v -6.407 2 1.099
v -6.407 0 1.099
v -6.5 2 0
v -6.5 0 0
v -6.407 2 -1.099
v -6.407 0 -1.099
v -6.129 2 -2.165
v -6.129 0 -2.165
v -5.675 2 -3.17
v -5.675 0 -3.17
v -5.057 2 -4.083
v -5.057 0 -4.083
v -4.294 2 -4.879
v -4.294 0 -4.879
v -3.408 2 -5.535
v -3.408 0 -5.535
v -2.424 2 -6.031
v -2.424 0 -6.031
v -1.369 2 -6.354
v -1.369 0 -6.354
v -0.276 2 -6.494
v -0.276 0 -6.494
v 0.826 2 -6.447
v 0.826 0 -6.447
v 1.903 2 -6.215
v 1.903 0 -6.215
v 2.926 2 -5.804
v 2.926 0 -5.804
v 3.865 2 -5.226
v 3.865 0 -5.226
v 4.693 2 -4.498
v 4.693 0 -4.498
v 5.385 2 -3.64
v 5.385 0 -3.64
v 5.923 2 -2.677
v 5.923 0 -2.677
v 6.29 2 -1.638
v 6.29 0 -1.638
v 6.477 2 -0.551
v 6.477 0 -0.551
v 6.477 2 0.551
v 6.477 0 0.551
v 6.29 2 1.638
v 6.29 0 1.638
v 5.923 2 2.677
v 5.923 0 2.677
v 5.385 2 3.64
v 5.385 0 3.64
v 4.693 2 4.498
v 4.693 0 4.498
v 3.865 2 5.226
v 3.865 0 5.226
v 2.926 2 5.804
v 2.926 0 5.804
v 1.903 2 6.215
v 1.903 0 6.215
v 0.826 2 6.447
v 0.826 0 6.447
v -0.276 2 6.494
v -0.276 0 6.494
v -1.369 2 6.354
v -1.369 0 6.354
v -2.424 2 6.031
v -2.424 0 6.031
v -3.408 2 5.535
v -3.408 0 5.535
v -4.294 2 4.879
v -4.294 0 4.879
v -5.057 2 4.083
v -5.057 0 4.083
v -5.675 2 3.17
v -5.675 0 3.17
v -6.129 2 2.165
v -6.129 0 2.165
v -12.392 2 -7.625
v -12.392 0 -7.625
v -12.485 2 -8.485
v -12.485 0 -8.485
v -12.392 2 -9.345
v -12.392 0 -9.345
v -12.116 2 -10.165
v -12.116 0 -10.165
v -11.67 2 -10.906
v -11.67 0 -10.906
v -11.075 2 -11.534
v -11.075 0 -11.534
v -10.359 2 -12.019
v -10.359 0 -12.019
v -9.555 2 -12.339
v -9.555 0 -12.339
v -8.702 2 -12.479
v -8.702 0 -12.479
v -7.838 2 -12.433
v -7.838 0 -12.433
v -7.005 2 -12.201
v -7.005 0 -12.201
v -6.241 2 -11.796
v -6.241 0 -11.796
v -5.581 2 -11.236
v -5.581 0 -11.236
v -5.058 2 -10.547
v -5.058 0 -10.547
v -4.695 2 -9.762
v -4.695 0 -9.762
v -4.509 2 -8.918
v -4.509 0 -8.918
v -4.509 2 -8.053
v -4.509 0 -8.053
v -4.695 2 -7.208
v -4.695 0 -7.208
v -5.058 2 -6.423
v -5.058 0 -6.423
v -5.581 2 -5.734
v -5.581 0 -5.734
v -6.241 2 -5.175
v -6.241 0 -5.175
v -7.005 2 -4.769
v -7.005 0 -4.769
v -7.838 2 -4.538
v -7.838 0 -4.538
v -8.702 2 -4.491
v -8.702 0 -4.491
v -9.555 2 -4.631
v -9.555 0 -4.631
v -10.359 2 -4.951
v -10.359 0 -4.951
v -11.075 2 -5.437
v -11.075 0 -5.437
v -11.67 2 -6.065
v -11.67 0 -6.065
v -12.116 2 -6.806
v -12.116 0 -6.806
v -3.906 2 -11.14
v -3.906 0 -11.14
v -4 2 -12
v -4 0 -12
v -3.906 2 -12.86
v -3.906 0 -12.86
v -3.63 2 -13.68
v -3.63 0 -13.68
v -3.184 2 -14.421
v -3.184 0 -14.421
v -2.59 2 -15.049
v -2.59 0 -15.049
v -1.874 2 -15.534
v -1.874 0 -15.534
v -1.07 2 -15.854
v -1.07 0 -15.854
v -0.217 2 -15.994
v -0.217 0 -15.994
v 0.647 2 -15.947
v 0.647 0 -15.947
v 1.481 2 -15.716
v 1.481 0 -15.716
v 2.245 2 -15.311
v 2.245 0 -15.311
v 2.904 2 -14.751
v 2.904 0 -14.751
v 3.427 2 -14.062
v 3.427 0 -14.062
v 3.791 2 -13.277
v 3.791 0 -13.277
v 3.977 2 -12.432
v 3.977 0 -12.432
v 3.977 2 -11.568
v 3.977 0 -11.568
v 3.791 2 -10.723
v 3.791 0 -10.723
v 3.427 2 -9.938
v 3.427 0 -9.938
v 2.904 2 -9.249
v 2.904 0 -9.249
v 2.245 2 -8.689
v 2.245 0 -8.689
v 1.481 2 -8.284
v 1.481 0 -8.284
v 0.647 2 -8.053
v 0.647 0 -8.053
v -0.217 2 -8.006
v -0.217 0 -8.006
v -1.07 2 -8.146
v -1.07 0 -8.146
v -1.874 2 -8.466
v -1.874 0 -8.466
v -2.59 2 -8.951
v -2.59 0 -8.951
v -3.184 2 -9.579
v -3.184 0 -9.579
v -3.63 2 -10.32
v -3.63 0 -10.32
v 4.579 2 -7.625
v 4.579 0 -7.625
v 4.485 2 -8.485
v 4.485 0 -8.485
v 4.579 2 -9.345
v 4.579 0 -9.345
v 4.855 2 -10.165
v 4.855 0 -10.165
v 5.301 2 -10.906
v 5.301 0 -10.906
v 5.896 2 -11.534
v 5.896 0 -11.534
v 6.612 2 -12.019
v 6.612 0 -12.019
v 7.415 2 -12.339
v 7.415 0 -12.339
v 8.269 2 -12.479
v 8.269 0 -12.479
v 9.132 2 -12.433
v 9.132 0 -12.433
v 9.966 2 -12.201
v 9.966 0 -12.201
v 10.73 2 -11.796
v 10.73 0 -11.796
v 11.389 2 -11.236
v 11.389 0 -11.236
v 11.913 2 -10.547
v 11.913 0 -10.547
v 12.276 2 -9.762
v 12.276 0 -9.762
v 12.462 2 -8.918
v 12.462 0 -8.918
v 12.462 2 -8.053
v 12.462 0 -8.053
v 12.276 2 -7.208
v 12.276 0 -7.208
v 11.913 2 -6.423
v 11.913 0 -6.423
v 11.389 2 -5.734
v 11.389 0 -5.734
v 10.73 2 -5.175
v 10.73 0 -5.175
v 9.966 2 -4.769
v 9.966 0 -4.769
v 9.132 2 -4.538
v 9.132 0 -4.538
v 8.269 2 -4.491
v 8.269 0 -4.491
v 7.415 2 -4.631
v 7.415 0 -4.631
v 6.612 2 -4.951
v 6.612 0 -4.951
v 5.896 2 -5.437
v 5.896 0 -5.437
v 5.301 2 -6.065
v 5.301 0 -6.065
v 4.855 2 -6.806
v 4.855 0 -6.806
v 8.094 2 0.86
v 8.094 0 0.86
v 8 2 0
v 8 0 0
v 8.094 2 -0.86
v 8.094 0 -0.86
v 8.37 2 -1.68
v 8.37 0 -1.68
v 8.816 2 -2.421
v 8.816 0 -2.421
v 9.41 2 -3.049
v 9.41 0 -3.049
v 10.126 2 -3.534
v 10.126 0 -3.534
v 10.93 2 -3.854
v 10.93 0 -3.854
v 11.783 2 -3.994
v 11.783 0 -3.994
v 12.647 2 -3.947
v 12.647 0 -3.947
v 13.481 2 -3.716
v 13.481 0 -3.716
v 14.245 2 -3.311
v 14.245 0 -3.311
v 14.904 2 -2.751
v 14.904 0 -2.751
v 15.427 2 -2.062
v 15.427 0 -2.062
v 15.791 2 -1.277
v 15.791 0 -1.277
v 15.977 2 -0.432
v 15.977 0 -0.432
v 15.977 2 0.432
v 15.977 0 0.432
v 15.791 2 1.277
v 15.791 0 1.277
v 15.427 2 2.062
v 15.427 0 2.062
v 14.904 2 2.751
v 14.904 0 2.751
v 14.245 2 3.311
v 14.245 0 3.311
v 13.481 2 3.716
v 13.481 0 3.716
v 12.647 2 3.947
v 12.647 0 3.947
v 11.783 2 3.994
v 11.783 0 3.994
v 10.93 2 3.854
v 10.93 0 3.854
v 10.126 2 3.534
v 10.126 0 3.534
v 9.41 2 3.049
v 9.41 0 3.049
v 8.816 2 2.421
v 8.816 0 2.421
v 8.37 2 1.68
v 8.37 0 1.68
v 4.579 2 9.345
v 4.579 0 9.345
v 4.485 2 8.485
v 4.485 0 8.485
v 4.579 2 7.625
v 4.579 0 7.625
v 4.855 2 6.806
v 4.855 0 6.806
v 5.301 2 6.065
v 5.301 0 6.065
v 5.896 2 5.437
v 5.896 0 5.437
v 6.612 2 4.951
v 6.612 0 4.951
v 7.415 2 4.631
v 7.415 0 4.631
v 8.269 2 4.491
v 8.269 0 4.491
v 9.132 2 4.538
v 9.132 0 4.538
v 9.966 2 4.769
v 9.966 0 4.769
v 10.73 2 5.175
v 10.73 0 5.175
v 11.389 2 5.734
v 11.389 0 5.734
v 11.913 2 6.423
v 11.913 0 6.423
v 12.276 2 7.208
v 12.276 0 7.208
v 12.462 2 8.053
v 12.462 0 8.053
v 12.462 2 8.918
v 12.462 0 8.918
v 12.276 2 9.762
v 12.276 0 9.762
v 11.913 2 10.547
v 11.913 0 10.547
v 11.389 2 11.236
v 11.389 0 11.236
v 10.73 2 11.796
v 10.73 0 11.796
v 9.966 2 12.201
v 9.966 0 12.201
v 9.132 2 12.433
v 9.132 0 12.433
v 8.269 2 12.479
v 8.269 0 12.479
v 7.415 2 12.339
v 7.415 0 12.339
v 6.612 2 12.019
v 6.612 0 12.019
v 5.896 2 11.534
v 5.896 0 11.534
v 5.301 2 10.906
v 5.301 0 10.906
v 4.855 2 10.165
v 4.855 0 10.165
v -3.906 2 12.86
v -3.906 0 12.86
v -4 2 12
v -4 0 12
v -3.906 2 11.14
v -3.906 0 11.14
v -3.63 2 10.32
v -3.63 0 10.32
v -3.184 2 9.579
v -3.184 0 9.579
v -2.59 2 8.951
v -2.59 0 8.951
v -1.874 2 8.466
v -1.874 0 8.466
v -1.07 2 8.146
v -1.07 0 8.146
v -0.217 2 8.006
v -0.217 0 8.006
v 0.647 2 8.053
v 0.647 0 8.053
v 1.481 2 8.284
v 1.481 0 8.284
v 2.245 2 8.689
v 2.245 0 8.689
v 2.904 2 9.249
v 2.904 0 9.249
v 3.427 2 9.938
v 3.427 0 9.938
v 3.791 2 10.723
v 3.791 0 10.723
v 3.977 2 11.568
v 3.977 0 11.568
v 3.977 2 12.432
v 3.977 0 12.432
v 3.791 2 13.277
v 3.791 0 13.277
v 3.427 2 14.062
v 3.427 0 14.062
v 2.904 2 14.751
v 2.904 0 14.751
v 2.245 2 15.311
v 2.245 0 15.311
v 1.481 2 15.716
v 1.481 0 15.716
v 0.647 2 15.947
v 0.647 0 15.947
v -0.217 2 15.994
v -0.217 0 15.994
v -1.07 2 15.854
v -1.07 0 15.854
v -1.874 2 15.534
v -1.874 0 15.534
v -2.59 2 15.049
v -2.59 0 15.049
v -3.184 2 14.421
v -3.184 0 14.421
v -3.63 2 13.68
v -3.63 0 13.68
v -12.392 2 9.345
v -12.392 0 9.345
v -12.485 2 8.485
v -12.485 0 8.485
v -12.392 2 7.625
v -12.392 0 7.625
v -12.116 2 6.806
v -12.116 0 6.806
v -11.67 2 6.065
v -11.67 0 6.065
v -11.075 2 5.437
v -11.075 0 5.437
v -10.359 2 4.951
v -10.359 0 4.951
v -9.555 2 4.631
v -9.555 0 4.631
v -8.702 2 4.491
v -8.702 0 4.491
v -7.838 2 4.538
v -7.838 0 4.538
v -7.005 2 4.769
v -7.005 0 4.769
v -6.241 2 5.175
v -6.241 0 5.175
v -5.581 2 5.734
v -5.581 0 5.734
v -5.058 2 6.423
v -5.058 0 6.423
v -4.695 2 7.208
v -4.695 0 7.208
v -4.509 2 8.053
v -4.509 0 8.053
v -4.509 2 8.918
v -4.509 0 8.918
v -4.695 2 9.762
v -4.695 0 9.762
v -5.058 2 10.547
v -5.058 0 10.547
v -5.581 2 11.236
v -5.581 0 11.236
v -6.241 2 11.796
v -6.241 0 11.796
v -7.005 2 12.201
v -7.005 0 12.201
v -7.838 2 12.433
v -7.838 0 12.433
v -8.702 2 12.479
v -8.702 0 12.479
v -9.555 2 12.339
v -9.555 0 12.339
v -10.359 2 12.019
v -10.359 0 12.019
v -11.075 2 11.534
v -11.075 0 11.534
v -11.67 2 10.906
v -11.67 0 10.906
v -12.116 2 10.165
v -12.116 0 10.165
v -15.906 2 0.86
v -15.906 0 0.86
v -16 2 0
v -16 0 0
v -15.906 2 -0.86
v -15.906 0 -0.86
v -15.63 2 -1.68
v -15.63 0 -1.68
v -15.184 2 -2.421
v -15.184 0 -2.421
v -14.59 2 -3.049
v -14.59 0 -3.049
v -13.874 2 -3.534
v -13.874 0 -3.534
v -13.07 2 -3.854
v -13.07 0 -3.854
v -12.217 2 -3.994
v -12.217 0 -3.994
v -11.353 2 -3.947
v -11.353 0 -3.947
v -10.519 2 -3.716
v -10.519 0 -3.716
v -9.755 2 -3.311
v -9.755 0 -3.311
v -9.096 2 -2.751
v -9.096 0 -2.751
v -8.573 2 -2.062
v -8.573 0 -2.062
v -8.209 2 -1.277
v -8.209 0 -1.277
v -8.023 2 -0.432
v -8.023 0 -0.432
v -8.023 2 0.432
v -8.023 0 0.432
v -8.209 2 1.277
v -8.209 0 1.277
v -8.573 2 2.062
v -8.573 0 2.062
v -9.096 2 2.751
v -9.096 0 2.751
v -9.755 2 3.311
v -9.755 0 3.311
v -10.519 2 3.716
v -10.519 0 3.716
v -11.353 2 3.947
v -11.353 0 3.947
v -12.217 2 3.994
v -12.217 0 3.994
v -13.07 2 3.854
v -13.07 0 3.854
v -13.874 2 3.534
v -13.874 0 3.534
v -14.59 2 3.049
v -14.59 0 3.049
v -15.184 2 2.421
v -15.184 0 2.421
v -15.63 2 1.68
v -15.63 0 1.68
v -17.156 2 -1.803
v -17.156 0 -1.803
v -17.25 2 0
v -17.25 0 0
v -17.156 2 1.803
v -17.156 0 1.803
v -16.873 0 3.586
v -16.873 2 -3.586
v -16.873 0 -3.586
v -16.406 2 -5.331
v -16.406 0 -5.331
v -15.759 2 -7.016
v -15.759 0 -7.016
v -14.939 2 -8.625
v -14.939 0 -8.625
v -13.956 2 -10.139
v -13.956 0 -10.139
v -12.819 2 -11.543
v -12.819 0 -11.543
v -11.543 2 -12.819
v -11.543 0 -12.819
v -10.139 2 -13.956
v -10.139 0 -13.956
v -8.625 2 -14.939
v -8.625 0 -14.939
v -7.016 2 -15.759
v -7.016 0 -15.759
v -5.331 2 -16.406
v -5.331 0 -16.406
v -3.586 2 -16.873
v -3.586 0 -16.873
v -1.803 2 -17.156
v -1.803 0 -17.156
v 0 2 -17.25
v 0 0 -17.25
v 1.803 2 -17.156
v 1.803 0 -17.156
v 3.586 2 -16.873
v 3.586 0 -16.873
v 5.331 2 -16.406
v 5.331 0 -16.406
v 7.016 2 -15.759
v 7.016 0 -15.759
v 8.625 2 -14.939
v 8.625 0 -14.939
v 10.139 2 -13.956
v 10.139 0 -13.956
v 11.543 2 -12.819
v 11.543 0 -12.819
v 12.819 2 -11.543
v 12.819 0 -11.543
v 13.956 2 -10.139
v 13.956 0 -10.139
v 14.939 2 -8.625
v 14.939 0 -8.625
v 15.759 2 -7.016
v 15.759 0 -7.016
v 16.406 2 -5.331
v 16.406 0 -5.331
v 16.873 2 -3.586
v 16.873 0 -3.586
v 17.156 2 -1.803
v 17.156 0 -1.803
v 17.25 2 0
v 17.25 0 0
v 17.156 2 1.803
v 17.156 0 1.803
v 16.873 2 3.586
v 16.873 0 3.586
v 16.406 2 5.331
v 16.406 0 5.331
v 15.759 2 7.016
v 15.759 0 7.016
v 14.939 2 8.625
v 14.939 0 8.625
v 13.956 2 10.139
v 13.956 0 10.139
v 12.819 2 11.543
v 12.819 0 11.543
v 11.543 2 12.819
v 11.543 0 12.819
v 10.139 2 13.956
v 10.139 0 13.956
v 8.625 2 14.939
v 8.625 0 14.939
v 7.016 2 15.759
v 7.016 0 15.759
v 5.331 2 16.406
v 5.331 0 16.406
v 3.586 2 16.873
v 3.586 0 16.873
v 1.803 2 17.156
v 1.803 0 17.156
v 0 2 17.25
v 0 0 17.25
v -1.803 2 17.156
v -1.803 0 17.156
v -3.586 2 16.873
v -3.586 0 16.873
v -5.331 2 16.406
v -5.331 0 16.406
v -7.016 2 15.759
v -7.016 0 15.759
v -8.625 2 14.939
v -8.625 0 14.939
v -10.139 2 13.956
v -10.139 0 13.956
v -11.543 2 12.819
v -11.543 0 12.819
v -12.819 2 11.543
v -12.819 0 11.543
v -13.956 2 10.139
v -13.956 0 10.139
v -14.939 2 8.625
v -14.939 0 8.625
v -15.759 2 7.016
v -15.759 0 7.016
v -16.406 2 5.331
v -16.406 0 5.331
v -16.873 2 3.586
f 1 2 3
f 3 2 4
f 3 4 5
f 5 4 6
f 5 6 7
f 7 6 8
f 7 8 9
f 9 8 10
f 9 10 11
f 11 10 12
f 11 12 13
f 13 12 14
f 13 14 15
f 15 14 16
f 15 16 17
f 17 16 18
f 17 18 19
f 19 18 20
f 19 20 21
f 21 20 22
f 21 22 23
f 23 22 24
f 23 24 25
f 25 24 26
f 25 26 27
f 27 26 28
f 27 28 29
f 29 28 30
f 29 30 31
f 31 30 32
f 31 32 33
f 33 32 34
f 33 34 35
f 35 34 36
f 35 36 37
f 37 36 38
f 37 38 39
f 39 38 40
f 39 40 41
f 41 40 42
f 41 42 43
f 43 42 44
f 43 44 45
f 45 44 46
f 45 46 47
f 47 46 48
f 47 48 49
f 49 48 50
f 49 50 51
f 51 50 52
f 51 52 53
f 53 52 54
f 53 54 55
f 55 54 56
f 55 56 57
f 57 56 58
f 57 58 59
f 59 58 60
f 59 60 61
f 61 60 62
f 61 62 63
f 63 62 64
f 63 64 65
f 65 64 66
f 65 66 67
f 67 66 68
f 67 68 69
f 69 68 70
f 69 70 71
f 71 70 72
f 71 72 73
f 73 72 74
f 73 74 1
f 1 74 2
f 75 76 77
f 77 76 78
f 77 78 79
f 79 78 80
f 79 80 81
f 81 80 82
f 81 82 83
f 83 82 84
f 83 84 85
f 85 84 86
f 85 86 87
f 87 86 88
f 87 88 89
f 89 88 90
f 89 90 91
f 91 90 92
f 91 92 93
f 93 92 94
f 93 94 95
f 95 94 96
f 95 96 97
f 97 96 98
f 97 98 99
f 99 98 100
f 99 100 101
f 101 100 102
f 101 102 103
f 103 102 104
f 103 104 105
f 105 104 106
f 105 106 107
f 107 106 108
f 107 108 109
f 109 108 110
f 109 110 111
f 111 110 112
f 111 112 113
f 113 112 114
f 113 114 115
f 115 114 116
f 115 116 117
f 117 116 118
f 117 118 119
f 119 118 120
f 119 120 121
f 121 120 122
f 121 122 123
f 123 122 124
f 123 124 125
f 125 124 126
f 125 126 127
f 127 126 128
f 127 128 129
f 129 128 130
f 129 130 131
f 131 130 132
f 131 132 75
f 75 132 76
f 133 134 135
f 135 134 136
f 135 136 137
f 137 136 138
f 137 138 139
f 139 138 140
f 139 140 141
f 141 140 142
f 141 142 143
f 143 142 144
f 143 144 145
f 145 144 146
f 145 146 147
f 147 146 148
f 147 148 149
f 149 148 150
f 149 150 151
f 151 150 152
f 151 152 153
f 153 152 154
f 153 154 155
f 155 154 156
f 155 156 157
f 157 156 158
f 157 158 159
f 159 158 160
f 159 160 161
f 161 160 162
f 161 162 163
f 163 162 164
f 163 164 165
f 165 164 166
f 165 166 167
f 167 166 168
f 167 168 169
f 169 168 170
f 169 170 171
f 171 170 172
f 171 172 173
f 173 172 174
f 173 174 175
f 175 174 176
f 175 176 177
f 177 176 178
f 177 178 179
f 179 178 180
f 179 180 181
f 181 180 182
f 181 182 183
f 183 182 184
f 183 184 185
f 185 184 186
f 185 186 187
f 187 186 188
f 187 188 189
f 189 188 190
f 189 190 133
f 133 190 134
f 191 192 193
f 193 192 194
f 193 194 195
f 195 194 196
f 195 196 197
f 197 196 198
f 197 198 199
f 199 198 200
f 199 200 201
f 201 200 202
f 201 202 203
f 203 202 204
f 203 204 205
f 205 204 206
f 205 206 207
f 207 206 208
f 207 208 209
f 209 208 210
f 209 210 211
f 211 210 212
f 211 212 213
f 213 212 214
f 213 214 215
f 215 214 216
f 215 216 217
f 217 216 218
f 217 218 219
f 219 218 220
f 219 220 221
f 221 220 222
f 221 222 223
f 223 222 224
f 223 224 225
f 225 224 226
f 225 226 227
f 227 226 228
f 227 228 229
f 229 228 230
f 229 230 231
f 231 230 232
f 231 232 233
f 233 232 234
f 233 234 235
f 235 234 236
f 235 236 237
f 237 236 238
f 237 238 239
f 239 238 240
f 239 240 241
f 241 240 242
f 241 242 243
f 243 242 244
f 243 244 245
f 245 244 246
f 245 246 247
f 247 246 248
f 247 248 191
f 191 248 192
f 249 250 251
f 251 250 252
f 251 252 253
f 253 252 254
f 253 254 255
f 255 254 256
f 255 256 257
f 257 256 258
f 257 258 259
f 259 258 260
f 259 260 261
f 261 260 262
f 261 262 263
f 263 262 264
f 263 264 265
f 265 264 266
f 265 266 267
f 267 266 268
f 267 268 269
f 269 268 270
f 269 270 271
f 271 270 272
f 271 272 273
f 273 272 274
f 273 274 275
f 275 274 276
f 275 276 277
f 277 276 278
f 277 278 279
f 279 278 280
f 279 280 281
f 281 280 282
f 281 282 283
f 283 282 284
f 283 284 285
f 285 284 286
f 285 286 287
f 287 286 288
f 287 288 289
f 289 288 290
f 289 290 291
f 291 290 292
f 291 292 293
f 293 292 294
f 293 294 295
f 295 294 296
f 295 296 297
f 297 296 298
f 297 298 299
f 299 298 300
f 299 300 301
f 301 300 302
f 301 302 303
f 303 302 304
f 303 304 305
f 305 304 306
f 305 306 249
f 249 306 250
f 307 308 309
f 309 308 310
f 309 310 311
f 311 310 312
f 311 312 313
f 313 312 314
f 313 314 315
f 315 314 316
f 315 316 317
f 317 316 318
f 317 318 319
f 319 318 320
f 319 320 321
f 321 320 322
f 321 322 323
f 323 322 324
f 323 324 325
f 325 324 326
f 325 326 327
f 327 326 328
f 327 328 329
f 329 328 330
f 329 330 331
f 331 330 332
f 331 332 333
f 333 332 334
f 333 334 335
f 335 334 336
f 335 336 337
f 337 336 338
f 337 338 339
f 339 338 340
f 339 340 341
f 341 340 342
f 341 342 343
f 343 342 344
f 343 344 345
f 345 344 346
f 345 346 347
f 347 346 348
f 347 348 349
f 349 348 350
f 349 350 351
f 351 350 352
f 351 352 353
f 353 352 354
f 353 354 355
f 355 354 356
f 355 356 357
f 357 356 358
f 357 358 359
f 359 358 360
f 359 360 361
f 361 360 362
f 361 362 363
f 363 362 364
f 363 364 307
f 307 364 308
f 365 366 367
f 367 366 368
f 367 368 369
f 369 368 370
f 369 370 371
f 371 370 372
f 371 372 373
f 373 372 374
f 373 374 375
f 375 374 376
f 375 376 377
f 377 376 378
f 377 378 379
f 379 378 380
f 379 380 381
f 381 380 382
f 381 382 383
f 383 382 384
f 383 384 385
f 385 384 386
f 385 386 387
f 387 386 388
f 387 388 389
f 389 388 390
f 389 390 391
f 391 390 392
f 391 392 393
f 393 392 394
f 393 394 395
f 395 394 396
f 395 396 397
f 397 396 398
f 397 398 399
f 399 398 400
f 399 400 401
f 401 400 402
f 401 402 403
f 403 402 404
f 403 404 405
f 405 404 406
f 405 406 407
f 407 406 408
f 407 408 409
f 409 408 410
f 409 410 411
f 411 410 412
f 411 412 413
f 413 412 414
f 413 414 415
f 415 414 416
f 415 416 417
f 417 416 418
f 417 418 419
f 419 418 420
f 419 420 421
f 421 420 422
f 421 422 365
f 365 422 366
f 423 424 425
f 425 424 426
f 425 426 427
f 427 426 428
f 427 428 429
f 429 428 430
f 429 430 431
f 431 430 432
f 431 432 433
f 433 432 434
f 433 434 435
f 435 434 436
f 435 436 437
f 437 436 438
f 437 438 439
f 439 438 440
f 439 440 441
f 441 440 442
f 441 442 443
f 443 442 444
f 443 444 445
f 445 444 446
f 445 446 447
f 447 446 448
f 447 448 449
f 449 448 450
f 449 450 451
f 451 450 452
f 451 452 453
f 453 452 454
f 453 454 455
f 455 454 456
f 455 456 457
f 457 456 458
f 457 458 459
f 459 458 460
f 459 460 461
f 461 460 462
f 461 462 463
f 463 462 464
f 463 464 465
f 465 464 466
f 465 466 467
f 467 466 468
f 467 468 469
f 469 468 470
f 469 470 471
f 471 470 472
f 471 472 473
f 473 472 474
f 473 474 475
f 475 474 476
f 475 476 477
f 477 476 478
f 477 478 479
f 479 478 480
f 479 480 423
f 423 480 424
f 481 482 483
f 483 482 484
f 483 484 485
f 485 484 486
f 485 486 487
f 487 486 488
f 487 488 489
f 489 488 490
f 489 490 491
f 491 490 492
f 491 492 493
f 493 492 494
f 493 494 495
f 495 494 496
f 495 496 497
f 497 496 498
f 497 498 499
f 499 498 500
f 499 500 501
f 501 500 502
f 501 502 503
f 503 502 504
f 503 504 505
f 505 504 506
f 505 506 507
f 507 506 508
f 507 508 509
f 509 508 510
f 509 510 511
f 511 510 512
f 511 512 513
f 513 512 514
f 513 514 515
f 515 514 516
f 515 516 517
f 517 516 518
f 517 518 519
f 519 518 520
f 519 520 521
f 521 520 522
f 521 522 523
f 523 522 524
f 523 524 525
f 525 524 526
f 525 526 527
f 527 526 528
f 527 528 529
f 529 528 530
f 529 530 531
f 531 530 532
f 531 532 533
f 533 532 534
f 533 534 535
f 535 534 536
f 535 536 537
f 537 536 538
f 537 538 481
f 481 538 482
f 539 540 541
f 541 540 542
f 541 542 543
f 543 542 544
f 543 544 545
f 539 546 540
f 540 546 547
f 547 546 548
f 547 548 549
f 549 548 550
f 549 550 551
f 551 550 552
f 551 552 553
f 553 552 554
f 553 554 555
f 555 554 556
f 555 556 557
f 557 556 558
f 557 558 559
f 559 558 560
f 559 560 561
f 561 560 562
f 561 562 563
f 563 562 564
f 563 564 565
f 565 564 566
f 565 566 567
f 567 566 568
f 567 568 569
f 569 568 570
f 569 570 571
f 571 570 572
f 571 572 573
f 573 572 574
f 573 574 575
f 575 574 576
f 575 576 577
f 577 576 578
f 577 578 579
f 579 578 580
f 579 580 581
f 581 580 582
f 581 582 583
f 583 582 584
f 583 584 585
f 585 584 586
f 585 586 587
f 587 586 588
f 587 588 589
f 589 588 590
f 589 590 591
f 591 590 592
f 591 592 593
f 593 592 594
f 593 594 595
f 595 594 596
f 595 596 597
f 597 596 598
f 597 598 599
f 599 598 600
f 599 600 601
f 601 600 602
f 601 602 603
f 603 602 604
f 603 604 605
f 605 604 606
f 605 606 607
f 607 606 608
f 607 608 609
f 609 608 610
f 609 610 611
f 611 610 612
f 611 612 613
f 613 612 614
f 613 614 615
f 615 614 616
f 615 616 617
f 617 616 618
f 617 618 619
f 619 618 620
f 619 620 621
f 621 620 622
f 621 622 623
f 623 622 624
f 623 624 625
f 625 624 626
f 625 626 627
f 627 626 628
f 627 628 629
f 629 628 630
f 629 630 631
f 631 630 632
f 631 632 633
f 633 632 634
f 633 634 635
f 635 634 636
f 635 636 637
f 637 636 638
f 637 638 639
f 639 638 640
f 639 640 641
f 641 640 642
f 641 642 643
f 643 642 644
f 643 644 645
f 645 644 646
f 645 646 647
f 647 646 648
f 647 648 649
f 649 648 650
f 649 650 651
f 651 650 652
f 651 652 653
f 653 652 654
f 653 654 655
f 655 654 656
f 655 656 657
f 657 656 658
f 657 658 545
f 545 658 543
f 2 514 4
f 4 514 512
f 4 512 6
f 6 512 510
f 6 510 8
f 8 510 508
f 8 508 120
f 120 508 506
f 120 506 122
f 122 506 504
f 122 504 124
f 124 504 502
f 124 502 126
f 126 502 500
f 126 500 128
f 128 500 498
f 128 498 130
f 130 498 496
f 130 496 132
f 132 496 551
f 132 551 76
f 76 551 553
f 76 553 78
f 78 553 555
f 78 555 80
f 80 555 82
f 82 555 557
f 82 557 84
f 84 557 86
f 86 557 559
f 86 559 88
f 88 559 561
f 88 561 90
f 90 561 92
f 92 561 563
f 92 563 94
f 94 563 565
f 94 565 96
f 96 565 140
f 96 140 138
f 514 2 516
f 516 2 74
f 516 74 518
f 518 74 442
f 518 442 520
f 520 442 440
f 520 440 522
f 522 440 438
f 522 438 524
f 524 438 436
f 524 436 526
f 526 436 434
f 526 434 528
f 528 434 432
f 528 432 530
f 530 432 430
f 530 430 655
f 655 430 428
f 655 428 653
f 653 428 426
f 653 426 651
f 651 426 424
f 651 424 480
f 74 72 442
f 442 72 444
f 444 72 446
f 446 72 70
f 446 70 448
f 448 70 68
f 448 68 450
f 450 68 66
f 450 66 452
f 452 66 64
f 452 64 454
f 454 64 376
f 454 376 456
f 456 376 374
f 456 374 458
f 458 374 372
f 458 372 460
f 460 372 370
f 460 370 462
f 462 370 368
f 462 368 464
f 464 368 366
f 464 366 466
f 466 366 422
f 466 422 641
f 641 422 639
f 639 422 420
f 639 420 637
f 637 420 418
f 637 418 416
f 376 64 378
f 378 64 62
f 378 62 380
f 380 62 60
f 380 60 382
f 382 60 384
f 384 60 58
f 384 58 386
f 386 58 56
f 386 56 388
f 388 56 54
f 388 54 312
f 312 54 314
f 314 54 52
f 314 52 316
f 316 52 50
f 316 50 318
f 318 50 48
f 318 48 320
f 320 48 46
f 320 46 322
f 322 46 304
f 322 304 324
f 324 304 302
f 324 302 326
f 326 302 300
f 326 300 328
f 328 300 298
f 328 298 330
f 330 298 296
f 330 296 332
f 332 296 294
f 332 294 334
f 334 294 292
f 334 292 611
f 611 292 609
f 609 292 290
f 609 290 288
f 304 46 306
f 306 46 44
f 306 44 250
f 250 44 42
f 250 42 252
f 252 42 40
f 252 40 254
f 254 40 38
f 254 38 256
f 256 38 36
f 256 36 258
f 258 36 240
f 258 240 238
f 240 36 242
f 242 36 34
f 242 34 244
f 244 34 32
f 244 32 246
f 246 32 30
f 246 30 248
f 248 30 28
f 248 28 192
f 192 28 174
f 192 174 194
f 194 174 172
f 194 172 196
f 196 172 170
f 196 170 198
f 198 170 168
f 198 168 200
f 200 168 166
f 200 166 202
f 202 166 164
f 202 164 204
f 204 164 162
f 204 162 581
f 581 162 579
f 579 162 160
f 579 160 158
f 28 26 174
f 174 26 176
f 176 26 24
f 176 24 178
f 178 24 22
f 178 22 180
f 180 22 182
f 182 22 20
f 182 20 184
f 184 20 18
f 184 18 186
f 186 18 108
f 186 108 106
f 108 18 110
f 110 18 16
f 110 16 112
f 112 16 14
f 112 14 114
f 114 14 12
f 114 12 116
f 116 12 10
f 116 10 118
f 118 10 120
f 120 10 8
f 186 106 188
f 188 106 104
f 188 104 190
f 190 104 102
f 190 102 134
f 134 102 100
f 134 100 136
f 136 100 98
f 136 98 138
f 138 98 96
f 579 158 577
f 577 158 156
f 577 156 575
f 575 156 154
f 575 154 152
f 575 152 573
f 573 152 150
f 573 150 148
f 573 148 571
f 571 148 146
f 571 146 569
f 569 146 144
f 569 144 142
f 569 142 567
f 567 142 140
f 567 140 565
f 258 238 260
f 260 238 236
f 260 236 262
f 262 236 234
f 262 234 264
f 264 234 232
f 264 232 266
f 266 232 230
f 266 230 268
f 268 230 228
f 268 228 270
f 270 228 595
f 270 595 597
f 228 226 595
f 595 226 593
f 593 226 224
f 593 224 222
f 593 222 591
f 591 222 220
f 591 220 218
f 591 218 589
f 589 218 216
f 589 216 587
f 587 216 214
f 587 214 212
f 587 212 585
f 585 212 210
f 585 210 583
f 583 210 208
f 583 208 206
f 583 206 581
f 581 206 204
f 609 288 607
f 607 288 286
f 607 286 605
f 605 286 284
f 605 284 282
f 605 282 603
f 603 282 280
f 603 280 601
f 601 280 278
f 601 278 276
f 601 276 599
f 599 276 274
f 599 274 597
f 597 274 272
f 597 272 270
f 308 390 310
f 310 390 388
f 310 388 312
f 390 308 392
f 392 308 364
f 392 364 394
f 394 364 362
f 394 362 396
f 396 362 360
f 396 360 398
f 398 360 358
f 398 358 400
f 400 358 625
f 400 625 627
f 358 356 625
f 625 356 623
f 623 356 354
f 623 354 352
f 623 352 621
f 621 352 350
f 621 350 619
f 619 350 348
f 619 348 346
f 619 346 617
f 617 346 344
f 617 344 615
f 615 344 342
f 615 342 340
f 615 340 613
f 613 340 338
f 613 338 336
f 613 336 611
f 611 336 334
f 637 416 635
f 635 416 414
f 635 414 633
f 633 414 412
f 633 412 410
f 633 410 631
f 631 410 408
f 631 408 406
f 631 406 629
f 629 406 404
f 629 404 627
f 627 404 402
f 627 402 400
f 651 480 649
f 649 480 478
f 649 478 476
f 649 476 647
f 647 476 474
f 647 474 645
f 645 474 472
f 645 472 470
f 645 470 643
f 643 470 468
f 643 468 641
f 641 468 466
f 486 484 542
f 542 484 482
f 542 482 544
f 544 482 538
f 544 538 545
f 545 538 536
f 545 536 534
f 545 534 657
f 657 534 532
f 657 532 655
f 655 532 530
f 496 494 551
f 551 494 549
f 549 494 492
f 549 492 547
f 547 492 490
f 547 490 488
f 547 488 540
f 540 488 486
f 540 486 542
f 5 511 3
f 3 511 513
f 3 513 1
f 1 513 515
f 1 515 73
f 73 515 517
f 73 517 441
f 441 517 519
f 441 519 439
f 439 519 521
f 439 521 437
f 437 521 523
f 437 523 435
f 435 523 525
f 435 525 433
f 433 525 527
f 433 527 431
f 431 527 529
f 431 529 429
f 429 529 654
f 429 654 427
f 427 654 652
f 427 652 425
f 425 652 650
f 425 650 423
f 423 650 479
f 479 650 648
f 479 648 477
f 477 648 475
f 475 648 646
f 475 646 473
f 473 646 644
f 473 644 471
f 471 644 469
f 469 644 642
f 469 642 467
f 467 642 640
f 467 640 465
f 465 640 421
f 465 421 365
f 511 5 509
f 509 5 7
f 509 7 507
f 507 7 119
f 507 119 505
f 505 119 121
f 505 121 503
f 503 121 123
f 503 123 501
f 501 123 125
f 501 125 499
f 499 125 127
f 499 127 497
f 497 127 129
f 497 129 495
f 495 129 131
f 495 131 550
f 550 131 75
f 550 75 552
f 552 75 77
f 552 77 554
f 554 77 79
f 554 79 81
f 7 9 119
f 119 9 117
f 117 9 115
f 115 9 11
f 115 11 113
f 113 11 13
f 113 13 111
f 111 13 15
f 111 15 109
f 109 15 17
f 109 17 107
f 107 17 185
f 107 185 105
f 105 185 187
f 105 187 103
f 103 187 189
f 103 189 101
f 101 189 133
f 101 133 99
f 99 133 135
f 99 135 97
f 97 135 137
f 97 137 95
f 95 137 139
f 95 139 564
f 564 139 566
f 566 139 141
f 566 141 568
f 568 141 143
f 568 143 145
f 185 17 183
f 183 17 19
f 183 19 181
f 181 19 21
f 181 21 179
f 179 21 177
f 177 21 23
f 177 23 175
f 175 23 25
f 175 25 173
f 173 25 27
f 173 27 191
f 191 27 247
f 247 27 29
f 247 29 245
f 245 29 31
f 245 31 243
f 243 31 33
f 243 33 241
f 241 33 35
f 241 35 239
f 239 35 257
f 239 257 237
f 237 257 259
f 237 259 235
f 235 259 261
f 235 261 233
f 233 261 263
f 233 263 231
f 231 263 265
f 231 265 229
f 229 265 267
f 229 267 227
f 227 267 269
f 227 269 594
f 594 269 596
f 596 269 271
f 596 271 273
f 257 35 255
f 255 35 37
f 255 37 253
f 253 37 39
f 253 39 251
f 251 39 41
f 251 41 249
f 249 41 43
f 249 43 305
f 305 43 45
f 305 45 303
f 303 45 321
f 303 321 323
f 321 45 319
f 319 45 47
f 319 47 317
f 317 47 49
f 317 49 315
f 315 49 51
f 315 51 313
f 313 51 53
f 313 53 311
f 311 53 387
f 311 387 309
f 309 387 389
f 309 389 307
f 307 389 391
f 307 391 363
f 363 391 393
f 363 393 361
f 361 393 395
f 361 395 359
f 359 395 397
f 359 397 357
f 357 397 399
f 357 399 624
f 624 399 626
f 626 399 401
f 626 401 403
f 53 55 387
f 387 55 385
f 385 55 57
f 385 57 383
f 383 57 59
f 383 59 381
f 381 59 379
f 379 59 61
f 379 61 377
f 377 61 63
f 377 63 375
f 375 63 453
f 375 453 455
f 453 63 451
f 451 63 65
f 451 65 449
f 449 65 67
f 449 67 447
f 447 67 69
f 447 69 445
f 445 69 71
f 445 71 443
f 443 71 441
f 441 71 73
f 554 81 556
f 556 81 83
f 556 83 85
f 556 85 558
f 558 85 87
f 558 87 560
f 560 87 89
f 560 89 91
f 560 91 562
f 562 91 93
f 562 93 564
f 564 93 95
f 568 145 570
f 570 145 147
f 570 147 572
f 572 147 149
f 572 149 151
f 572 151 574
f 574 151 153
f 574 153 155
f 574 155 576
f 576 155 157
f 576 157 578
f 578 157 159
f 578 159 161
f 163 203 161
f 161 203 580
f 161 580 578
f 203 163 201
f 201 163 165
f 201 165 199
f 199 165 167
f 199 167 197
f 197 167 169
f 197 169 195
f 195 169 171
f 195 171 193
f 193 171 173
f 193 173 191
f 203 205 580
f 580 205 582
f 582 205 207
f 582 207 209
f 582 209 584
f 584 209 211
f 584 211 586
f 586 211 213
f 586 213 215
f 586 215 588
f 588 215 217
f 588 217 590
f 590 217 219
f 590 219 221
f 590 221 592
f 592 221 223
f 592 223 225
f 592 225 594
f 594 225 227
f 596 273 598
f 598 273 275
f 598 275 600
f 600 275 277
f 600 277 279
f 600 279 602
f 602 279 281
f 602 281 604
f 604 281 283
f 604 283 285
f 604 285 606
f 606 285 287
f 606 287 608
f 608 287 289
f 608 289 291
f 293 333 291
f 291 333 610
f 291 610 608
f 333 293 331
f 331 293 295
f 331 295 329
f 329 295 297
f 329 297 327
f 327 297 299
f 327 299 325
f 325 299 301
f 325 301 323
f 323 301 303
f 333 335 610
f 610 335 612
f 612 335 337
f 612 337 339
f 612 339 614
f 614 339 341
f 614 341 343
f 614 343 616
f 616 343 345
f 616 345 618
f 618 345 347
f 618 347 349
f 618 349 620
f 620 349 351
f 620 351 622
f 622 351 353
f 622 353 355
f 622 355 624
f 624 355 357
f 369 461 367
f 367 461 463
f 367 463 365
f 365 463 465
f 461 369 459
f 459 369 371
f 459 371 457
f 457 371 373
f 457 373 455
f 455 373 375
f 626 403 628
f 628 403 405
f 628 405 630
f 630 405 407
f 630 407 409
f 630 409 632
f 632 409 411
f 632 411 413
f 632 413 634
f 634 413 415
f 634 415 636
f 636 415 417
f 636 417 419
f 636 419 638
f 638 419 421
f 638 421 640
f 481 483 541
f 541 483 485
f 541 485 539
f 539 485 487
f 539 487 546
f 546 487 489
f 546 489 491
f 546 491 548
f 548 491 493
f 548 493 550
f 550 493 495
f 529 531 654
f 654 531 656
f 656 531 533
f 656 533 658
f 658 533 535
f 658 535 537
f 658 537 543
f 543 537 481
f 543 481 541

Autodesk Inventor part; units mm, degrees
ref_plane "YZ Plane" through (0, 0, 0) normal (1, 0, 0) x (0, 1, 0)
ref_plane "XZ Plane" through (0, 0, 0) normal (0, 1, 0) x (-1, 0, 0)
ref_plane "XY Plane" through (0, 0, 0) normal (0, 0, 1) x (1, 0, 0)
sketch "Sketch1" plane through (0, 0, 0) normal (0, 1, 0) x (-1, 0, 0)
  line L0 (0, 0) -> (12, 0) construction
  circle A0 centre (12, 0) radius 4
  circle A1 centre (8.4853, 8.4853) radius 4
  circle A2 centre (0, 12) radius 4
  circle A3 centre (-8.4853, 8.4853) radius 4
  circle A4 centre (-12, 0) radius 4
  circle A5 centre (-8.4853, -8.4853) radius 4
  circle A6 centre (0, -12) radius 4
  circle A7 centre (8.4853, -8.4853) radius 4
  circle A8 centre (0, 0) radius 17.25
  circle A9 centre (0, 0) radius 6.5
  dimension "d0" = 12
  dimension "d1" = 8
  dimension "d4" = 360
  dimension "d6" = 34.5
  dimension "d9" = 13
extrude "Extrusion1" add sketch "Sketch1" along normal blind 2
properties part number "tubeholder"
